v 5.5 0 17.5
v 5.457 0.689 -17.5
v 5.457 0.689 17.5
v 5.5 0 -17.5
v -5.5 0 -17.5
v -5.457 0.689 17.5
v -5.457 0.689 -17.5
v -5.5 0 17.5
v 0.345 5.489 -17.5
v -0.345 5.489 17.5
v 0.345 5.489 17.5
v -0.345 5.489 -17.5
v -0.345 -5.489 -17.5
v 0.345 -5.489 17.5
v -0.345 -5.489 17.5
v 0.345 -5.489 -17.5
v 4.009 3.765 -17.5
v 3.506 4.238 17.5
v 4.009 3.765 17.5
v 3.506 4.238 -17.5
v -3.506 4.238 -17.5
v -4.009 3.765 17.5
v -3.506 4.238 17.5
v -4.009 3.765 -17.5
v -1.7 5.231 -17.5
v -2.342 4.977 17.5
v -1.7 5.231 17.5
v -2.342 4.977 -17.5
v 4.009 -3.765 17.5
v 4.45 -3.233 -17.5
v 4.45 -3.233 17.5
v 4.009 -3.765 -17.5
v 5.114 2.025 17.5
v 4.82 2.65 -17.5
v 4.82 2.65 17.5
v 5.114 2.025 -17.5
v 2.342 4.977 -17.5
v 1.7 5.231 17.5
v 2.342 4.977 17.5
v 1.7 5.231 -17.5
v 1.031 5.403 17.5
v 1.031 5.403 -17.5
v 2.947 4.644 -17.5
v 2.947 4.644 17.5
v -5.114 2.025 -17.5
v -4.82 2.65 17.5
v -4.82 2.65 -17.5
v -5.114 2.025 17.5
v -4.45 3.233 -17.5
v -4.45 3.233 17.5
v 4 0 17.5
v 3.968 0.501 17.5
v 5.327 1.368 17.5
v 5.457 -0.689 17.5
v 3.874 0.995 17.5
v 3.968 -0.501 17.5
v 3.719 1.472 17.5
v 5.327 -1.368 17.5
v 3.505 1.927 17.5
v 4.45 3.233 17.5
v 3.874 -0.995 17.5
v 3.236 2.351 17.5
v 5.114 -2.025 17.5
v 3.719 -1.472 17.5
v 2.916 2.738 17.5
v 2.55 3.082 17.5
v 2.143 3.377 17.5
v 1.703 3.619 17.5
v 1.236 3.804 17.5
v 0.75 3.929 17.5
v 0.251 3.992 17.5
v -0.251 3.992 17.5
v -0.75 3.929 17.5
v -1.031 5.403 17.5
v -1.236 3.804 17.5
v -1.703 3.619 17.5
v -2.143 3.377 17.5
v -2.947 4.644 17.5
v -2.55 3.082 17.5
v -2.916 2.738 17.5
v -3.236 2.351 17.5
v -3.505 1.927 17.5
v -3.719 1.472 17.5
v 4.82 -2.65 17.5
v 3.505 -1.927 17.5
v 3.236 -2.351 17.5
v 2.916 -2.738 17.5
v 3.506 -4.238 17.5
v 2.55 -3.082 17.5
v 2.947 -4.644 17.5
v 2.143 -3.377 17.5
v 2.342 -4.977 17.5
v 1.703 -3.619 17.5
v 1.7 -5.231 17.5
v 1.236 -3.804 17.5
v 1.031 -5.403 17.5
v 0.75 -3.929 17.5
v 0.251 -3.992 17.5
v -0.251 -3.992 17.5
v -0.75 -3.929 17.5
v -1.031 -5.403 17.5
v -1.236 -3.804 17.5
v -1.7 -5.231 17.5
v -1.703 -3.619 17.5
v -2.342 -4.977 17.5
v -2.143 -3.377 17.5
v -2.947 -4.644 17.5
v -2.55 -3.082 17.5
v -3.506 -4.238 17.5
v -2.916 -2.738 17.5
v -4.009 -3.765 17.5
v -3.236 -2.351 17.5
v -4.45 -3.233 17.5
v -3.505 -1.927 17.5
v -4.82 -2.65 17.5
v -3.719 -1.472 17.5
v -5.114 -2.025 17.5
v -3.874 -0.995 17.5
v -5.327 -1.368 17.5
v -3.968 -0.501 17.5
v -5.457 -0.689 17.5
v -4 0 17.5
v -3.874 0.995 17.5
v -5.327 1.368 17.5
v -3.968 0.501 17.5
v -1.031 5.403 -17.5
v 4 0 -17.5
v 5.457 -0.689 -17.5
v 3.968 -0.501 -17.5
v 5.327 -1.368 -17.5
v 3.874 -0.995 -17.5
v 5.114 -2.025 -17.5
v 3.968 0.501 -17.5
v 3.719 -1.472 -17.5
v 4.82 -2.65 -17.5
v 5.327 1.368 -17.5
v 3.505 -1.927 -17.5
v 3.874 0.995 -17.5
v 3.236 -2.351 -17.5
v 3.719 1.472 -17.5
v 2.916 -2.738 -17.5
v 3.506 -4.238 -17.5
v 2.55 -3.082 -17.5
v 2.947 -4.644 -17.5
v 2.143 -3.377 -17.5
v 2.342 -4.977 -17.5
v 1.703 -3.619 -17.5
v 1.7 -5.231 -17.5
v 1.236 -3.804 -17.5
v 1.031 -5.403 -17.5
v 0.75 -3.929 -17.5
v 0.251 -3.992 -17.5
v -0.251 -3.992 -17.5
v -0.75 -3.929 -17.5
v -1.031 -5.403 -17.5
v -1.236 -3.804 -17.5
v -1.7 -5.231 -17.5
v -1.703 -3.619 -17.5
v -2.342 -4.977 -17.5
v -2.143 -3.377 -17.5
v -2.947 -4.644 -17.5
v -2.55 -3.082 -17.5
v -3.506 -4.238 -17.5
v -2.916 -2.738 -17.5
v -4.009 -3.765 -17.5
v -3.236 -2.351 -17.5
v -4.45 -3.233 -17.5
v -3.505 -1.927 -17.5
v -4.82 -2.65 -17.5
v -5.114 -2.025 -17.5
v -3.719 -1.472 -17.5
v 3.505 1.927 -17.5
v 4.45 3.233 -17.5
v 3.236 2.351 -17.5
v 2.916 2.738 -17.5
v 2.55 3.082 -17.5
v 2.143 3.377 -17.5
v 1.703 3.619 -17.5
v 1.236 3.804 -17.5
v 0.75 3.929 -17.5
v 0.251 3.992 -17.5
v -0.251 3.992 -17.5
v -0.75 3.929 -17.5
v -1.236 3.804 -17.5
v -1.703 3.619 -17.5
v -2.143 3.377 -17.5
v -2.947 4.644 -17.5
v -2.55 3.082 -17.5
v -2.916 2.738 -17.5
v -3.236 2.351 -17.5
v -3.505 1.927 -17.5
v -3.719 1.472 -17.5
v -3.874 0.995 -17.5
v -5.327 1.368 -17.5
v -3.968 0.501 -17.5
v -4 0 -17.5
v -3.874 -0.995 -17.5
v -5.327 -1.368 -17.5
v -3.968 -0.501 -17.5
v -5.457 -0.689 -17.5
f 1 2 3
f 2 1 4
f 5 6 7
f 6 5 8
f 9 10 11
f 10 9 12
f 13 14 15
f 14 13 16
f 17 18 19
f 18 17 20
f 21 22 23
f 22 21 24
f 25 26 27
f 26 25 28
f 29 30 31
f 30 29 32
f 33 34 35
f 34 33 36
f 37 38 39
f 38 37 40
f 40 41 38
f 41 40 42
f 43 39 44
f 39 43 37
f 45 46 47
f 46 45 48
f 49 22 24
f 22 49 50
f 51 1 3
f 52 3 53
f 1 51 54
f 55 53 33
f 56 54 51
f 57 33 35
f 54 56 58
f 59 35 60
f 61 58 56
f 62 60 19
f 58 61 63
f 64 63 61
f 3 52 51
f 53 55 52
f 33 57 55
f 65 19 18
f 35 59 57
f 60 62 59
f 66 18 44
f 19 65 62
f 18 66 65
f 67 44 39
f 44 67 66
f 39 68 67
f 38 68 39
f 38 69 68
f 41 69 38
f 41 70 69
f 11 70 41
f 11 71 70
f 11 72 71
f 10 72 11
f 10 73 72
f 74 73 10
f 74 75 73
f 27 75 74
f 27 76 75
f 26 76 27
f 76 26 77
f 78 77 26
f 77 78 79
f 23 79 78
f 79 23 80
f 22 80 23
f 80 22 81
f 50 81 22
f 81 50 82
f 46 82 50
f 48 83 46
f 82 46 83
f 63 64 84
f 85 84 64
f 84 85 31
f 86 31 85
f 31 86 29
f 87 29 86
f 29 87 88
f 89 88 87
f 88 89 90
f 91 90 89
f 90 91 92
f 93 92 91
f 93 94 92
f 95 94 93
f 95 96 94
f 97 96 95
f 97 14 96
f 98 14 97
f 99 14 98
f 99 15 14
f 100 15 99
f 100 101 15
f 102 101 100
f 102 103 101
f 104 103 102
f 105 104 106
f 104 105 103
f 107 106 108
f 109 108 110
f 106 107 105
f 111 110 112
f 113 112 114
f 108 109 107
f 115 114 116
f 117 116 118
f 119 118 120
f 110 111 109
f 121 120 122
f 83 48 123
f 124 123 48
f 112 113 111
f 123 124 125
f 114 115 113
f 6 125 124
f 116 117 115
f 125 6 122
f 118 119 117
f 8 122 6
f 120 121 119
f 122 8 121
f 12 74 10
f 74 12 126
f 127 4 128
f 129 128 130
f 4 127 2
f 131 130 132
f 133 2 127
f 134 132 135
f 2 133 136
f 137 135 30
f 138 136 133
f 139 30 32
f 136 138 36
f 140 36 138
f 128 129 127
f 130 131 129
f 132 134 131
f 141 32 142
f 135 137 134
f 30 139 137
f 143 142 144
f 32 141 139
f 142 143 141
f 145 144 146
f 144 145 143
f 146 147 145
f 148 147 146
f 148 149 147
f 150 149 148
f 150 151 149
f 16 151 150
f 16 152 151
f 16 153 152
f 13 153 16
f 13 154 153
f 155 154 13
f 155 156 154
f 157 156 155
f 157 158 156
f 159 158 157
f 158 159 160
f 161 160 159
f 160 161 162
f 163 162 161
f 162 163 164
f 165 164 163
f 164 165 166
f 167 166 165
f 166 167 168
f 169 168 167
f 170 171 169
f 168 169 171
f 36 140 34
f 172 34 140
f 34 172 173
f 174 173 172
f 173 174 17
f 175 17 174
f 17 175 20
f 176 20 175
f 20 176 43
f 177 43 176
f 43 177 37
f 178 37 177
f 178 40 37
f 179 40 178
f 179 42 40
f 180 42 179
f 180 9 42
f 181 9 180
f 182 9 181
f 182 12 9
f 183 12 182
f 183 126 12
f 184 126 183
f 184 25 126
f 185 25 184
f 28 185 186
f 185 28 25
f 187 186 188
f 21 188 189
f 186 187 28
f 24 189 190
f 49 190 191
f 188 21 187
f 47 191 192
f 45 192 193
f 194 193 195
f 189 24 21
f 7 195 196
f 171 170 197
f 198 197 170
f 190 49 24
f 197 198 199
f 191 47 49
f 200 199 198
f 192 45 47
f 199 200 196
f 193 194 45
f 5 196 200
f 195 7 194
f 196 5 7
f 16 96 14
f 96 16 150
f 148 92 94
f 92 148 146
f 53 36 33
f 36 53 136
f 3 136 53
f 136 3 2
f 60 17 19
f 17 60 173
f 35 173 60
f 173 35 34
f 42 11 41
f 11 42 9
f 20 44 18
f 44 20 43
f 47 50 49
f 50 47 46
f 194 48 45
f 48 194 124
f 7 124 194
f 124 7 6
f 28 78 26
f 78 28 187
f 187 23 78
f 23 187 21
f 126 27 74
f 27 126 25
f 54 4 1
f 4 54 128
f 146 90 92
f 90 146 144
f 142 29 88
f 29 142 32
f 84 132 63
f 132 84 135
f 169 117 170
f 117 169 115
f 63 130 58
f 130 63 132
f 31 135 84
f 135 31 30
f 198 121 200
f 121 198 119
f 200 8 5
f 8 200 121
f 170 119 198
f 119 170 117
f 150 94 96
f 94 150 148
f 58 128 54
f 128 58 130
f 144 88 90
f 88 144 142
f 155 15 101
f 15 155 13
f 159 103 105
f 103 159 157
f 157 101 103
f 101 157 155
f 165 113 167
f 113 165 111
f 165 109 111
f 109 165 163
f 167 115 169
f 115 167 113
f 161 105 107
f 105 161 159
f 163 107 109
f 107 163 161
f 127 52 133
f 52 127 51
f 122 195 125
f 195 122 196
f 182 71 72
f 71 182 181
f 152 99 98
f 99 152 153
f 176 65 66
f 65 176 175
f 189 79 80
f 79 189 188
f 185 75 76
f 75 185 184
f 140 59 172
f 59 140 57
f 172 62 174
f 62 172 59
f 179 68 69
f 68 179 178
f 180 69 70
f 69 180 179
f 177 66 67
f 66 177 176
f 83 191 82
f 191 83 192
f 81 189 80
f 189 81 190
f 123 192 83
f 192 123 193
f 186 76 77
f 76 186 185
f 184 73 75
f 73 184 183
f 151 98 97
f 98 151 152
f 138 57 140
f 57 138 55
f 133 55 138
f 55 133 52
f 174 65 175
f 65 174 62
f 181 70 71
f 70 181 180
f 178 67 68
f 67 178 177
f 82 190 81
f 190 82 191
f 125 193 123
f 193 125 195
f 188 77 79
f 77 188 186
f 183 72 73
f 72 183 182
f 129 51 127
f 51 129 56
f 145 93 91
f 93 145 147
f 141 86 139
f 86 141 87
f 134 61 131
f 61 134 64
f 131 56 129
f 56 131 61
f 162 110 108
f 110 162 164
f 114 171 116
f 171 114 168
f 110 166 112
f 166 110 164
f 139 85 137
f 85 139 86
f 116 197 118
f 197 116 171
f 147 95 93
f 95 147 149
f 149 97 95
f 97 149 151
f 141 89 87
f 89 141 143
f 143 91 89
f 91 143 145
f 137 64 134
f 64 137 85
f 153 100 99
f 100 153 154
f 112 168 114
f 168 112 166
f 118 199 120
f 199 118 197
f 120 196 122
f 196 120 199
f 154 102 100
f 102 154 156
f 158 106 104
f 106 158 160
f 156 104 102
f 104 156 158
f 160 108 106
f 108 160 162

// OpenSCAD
$fn = 50;


difference() {
	union() {
		translate(v = [0, 0, -17.5000000000]) {
			cylinder(h = 35, r = 5.5000000000);
		}
	}
	union() {
		translate(v = [0, 0, -100.0000000000]) {
			cylinder(h = 200, r = 4);
		}
	}
}
